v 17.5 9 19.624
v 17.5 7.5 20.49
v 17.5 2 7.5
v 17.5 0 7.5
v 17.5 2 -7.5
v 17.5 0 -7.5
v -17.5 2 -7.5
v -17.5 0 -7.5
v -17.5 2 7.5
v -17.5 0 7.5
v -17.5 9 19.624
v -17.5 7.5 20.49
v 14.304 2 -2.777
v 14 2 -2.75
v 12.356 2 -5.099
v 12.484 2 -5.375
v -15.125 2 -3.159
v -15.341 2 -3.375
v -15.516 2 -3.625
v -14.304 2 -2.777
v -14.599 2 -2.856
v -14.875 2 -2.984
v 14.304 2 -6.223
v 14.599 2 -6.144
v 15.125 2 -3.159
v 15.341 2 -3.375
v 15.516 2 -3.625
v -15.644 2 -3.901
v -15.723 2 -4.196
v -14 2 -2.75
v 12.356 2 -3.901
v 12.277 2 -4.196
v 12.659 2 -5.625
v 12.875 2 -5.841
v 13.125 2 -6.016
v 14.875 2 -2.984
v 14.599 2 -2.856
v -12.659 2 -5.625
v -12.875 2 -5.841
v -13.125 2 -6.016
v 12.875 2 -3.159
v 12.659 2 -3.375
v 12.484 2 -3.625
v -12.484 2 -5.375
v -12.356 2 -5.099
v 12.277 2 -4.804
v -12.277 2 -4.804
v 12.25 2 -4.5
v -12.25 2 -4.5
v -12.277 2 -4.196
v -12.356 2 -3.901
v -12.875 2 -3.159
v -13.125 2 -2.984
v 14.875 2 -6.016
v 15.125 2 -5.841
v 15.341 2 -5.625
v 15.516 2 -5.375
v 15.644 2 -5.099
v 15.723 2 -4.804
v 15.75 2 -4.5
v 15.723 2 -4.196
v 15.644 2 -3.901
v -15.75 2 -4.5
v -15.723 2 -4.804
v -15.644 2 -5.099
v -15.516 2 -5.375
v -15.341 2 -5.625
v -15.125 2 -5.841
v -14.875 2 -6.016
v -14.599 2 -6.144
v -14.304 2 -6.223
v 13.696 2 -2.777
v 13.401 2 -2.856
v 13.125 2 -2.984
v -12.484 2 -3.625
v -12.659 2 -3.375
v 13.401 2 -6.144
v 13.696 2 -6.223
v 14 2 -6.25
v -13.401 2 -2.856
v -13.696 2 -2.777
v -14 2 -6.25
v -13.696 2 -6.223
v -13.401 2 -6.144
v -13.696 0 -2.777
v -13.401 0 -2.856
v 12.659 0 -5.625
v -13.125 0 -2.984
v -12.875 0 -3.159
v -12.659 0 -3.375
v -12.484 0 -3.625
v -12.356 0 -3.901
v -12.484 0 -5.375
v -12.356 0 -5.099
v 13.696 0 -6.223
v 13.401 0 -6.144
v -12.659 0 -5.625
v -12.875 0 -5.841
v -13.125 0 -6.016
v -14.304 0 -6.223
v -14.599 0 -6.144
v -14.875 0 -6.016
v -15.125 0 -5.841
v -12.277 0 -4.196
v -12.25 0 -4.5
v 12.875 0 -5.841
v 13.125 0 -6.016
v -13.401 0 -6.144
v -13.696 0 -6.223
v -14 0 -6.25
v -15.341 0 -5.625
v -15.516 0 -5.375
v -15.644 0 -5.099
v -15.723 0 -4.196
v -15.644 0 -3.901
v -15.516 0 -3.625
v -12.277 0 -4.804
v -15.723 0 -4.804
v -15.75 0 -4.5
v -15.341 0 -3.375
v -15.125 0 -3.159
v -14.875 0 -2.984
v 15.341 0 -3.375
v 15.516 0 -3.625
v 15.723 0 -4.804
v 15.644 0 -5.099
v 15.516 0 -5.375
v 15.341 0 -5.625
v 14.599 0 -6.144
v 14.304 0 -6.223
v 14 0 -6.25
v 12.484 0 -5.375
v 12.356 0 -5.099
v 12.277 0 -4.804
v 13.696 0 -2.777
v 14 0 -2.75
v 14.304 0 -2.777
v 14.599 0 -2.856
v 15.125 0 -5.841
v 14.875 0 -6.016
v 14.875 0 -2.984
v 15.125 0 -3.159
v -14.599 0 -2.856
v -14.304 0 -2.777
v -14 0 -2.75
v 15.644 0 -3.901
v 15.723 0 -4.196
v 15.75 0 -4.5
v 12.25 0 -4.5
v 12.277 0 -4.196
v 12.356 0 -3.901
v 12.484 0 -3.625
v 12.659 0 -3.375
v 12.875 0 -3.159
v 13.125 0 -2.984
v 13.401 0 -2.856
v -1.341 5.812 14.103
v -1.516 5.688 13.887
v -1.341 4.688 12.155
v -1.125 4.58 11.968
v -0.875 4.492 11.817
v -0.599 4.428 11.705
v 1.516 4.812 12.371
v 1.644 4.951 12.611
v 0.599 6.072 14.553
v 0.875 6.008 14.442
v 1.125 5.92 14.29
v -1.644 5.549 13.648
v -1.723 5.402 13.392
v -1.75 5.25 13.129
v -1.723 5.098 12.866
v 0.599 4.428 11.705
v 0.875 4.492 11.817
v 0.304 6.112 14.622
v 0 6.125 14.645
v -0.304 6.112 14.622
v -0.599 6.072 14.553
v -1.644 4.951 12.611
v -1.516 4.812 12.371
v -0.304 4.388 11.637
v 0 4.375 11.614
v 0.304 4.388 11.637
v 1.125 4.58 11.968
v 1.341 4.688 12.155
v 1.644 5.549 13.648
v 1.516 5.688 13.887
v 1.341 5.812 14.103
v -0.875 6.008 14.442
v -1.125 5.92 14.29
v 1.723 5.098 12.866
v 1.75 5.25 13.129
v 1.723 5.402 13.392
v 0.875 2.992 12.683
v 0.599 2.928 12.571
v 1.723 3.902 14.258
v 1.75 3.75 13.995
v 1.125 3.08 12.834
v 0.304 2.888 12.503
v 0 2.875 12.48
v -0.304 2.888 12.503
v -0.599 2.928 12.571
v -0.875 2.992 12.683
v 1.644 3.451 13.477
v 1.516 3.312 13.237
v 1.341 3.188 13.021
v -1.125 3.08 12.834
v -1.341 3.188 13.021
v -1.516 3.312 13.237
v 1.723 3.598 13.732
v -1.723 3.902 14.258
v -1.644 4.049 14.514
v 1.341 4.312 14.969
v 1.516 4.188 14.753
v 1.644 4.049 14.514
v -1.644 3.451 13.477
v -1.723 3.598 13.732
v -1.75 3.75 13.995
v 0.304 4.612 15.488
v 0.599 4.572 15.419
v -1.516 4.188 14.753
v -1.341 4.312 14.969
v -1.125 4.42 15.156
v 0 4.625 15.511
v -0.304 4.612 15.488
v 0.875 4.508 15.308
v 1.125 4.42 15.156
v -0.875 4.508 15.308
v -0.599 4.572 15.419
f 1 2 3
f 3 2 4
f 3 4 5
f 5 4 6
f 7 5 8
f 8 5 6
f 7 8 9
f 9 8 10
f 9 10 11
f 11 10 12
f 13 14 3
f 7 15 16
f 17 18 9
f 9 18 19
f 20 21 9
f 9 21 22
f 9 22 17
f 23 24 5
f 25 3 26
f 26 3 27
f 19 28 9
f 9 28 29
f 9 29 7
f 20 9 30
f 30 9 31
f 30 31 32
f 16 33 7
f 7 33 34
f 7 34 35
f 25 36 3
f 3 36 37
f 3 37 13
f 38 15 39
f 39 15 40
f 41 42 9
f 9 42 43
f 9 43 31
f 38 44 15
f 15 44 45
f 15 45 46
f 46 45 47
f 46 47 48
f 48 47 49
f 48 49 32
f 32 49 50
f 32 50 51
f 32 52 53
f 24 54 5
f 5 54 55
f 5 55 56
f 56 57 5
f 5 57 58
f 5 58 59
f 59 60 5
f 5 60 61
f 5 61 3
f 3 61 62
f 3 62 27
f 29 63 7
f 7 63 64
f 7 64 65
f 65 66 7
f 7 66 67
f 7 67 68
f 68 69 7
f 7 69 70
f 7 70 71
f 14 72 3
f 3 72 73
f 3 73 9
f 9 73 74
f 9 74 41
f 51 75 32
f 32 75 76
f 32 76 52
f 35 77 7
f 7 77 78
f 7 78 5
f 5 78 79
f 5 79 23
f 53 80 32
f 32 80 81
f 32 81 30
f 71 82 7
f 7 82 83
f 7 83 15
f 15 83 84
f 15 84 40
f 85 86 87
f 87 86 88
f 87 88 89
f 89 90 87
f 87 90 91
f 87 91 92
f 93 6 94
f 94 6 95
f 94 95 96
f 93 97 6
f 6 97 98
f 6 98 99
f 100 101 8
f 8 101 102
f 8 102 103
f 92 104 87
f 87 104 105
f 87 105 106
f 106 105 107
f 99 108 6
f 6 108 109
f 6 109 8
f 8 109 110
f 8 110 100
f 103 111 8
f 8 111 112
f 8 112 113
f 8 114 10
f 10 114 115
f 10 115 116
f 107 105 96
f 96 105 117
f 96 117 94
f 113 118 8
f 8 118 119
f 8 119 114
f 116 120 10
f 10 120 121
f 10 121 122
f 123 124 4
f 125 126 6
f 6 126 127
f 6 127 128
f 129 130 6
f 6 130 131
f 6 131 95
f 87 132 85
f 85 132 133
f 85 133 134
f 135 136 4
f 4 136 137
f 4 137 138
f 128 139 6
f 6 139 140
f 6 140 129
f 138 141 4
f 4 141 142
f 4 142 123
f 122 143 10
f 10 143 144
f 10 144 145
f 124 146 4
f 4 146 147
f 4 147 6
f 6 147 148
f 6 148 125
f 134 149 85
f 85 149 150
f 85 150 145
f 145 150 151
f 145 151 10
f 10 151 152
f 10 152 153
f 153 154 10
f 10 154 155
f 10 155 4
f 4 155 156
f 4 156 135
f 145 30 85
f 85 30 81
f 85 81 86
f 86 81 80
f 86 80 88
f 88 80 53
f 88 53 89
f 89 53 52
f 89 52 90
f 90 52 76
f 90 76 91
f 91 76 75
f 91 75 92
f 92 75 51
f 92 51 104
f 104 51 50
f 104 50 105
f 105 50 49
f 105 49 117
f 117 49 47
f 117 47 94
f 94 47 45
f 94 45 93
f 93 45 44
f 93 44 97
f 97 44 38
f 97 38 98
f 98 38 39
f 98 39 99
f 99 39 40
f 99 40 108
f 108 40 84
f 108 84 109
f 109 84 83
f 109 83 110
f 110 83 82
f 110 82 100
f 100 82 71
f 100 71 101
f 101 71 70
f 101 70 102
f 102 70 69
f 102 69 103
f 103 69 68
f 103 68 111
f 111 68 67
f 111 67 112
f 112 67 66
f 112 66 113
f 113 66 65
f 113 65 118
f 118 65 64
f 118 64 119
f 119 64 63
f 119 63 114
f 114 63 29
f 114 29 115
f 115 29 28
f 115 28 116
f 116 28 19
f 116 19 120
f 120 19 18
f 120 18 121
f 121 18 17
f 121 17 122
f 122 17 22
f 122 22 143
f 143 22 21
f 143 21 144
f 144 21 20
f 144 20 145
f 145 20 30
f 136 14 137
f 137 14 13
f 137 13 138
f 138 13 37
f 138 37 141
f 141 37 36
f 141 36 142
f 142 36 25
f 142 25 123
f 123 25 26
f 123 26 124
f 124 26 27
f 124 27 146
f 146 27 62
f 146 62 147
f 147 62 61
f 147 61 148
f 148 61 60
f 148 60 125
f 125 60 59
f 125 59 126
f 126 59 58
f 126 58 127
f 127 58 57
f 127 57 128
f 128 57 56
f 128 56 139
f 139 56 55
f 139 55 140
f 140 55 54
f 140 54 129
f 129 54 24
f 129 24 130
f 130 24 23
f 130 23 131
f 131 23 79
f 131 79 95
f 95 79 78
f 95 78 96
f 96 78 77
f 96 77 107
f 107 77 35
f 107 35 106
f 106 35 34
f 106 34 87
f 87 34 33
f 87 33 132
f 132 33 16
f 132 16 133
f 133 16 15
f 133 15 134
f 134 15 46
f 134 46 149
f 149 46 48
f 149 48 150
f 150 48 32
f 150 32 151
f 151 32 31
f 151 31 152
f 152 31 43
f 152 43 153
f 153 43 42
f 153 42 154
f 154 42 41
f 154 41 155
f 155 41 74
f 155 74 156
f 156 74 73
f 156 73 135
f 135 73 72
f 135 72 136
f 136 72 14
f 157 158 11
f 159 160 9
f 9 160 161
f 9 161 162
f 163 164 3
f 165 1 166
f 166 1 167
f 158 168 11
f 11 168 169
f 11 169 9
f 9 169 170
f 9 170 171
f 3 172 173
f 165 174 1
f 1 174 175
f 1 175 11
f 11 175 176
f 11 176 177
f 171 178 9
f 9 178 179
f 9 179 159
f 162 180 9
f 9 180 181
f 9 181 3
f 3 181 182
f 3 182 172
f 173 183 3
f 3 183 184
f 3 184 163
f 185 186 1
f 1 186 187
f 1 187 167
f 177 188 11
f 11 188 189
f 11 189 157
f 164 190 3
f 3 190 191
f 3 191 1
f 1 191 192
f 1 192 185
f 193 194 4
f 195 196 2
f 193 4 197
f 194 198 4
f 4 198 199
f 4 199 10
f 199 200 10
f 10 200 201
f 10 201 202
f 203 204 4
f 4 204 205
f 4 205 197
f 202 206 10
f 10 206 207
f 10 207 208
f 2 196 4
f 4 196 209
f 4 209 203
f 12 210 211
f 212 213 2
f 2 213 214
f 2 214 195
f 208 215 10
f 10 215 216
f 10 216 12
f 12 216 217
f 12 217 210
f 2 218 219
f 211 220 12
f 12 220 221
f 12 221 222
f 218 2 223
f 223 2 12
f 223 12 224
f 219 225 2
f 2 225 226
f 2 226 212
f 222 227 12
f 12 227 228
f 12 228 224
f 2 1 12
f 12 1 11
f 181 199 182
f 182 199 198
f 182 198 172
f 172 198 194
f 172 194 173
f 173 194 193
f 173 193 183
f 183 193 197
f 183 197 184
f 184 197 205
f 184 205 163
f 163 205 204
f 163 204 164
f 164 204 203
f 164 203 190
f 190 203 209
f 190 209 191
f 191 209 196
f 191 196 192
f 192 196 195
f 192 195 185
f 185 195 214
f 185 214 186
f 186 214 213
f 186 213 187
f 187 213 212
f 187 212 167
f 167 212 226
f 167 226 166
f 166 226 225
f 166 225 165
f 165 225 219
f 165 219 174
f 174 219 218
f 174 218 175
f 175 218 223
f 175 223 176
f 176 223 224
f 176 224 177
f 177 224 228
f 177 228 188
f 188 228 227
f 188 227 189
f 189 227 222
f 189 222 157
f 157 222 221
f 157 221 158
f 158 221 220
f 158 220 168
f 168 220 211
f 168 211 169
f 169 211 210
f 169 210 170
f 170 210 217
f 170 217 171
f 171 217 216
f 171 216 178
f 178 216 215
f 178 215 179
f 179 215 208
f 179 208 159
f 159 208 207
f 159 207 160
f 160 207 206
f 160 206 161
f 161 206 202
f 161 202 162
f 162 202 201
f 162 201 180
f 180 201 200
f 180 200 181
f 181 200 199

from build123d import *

# Parameters (mm, degrees)
CROQUIS1_W              = 35
CROQUIS1_H              = 15
SALIENTE_EXTRUIR1_DEPTH = 2
CROQUIS2_R              = 1.75
CORTAR_EXTRUIR1_DEPTH   = 20.144189719
CROQUIS3_W              = 35
CROQUIS3_H              = 1.732050808
SALIENTE_EXTRUIR2_DEPTH = 15
CORTAR_EXTRUIR2_REACH   = 30.333
CROQUIS4_R              = 1.75


with BuildPart() as part:
    # Croquis1 → Saliente-Extruir1 (new body)
    with BuildSketch(Plane(origin=(0, 0, 0), x_dir=(1, 0, 0), z_dir=(0, 1, 0))):
        Rectangle(CROQUIS1_W, CROQUIS1_H)
    extrude(amount=SALIENTE_EXTRUIR1_DEPTH)

    # Croquis2 → Cortar-Extruir1 (cut, through all)
    with BuildSketch(Plane(origin=(0, 2, 0), x_dir=(1, 0, 0), z_dir=(0, 1, 0))):
        with Locations(Location((-14, 4.5, 0), (0, 0, 270))):
            Circle(CROQUIS2_R)
        with Locations(Location((14, 4.5, 0), (0, 0, 270))):
            Circle(CROQUIS2_R)
    extrude(amount=-CORTAR_EXTRUIR1_DEPTH, mode=Mode.SUBTRACT)

    # Croquis3 → Saliente-Extruir2 (add)
    with BuildSketch(Plane(origin=(0, 3.247595264, 5.625), x_dir=(1, 0, 0), z_dir=(0, 0.500000000000001, 0.866025403784438))):
        with Locations((0, -2.883974596)):
            Rectangle(CROQUIS3_W, CROQUIS3_H)
    extrude(amount=SALIENTE_EXTRUIR2_DEPTH)

    # Croquis4 → Cortar-Extruir2 (cut, up to next)
    with BuildSketch(Plane(origin=(0, -3.247595264, 1.875), x_dir=(1, 0, 0), z_dir=(0, -0.8660254037844382, 0.5000000000000011)), mode=Mode.PRIVATE) as cortar_extruir2_sk1:
        with Locations(Location((0, 13.995190528, 0), (0, 0, 270))):
            Circle(CROQUIS4_R)
    cortar_extruir2_tool1 = extrude(cortar_extruir2_sk1.sketch, amount=-CORTAR_EXTRUIR2_REACH, mode=Mode.PRIVATE) & part.part
    add(cortar_extruir2_tool1.solids().sort_by_distance((0, 3.75, 13.995191))[0], mode=Mode.SUBTRACT)


solid = part.part
